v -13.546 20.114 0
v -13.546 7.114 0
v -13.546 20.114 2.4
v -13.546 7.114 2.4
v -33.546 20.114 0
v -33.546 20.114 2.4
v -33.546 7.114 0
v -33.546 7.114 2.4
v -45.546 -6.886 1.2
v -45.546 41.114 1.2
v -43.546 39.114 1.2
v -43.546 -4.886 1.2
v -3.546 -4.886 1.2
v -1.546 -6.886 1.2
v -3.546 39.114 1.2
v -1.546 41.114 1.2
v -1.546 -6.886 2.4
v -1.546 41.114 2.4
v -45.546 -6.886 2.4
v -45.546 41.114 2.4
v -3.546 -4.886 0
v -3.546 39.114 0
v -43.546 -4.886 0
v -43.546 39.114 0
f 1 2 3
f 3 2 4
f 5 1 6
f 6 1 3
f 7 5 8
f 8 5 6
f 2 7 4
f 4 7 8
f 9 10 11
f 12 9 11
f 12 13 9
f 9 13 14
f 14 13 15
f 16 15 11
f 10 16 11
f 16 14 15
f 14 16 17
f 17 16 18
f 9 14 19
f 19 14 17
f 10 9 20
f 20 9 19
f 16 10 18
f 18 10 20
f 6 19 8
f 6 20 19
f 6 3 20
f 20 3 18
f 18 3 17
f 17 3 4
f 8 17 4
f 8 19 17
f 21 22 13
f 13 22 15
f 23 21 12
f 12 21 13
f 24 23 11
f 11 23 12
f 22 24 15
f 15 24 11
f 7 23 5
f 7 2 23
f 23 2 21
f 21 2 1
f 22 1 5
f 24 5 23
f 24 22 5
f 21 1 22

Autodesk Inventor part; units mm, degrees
ref_plane "YZ Plane" through (0, 0, 0) normal (1, 0, 0) x (0, 1, 0)
ref_plane "XZ Plane" through (0, 0, 0) normal (0, 1, 0) x (-1, 0, 0)
ref_plane "XY Plane" through (0, 0, 0) normal (0, 0, 1) x (1, 0, 0)
sketch "Sketch1" plane through (0, 0, 0) normal (0, 0, 1) x (1, 0, 0)
  line L0 (-43.5457, 39.1136) -> (-3.5457, 39.1136)
  line L1 (-3.5457, 39.1136) -> (-3.5457, -4.8864)
  line L2 (-3.5457, -4.8864) -> (-43.5457, -4.8864)
  line L3 (-43.5457, -4.8864) -> (-43.5457, 39.1136)
  point P0 (0, 0)
  dimension "d0" = 40
  dimension "d1" = 44
extrude "Extrusion1" add sketch "Sketch1" along normal blind 1.2
sketch "Sketch2" plane through (0, 0, 1.2) normal (0, 0, 1) x (1, 0, 0)
  line L0 (-45.5457, 41.1136) -> (-1.5457, 41.1136)
  line L1 (-1.5457, 41.1136) -> (-1.5457, -6.8864)
  line L2 (-1.5457, -6.8864) -> (-45.5457, -6.8864)
  line L3 (-45.5457, -6.8864) -> (-45.5457, 41.1136)
  line L4 (-3.5457, 39.1136) -> (-43.5457, 39.1136) projected
  line L5 (-43.5457, -4.8864) -> (-3.5457, -4.8864) projected
  line L6 (-3.5457, -4.8864) -> (-3.5457, 39.1136) projected
  line L7 (-43.5457, 39.1136) -> (-43.5457, -4.8864) projected
  point P0 (0, 0)
  dimension "d4" = 2
  dimension "d5" = 2
  dimension "d6" = 2
  dimension "d7" = 2
extrude "Extrusion2" add sketch "Sketch2" along normal blind 1.2 contours L0 L1 L2 L3 | L6 L5 L7 L4
sketch "Sketch3" plane through (0, 0, 2.4) normal (0, 0, 1) x (1, 0, 0)
  line L0 (-33.5457, 20.1136) -> (-13.5457, 20.1136)
  line L1 (-13.5457, 20.1136) -> (-13.5457, 7.1136)
  line L2 (-13.5457, 7.1136) -> (-33.5457, 7.1136)
  line L3 (-33.5457, 7.1136) -> (-33.5457, 20.1136)
  line L4 (-43.5457, -4.8864) -> (-3.5457, -4.8864) projected
  line L5 (-45.5457, 41.1136) -> (-45.5457, -6.8864) projected
  line L6 (-1.5457, -6.8864) -> (-1.5457, 41.1136) projected
  point P0 (0, 0)
  dimension "d10" = 12
  dimension "d11" = 25
  dimension "d12" = 12
  dimension "d13" = 12
extrude "Extrusion3" cut sketch "Sketch3" against normal blind 3
properties part number "Front"
